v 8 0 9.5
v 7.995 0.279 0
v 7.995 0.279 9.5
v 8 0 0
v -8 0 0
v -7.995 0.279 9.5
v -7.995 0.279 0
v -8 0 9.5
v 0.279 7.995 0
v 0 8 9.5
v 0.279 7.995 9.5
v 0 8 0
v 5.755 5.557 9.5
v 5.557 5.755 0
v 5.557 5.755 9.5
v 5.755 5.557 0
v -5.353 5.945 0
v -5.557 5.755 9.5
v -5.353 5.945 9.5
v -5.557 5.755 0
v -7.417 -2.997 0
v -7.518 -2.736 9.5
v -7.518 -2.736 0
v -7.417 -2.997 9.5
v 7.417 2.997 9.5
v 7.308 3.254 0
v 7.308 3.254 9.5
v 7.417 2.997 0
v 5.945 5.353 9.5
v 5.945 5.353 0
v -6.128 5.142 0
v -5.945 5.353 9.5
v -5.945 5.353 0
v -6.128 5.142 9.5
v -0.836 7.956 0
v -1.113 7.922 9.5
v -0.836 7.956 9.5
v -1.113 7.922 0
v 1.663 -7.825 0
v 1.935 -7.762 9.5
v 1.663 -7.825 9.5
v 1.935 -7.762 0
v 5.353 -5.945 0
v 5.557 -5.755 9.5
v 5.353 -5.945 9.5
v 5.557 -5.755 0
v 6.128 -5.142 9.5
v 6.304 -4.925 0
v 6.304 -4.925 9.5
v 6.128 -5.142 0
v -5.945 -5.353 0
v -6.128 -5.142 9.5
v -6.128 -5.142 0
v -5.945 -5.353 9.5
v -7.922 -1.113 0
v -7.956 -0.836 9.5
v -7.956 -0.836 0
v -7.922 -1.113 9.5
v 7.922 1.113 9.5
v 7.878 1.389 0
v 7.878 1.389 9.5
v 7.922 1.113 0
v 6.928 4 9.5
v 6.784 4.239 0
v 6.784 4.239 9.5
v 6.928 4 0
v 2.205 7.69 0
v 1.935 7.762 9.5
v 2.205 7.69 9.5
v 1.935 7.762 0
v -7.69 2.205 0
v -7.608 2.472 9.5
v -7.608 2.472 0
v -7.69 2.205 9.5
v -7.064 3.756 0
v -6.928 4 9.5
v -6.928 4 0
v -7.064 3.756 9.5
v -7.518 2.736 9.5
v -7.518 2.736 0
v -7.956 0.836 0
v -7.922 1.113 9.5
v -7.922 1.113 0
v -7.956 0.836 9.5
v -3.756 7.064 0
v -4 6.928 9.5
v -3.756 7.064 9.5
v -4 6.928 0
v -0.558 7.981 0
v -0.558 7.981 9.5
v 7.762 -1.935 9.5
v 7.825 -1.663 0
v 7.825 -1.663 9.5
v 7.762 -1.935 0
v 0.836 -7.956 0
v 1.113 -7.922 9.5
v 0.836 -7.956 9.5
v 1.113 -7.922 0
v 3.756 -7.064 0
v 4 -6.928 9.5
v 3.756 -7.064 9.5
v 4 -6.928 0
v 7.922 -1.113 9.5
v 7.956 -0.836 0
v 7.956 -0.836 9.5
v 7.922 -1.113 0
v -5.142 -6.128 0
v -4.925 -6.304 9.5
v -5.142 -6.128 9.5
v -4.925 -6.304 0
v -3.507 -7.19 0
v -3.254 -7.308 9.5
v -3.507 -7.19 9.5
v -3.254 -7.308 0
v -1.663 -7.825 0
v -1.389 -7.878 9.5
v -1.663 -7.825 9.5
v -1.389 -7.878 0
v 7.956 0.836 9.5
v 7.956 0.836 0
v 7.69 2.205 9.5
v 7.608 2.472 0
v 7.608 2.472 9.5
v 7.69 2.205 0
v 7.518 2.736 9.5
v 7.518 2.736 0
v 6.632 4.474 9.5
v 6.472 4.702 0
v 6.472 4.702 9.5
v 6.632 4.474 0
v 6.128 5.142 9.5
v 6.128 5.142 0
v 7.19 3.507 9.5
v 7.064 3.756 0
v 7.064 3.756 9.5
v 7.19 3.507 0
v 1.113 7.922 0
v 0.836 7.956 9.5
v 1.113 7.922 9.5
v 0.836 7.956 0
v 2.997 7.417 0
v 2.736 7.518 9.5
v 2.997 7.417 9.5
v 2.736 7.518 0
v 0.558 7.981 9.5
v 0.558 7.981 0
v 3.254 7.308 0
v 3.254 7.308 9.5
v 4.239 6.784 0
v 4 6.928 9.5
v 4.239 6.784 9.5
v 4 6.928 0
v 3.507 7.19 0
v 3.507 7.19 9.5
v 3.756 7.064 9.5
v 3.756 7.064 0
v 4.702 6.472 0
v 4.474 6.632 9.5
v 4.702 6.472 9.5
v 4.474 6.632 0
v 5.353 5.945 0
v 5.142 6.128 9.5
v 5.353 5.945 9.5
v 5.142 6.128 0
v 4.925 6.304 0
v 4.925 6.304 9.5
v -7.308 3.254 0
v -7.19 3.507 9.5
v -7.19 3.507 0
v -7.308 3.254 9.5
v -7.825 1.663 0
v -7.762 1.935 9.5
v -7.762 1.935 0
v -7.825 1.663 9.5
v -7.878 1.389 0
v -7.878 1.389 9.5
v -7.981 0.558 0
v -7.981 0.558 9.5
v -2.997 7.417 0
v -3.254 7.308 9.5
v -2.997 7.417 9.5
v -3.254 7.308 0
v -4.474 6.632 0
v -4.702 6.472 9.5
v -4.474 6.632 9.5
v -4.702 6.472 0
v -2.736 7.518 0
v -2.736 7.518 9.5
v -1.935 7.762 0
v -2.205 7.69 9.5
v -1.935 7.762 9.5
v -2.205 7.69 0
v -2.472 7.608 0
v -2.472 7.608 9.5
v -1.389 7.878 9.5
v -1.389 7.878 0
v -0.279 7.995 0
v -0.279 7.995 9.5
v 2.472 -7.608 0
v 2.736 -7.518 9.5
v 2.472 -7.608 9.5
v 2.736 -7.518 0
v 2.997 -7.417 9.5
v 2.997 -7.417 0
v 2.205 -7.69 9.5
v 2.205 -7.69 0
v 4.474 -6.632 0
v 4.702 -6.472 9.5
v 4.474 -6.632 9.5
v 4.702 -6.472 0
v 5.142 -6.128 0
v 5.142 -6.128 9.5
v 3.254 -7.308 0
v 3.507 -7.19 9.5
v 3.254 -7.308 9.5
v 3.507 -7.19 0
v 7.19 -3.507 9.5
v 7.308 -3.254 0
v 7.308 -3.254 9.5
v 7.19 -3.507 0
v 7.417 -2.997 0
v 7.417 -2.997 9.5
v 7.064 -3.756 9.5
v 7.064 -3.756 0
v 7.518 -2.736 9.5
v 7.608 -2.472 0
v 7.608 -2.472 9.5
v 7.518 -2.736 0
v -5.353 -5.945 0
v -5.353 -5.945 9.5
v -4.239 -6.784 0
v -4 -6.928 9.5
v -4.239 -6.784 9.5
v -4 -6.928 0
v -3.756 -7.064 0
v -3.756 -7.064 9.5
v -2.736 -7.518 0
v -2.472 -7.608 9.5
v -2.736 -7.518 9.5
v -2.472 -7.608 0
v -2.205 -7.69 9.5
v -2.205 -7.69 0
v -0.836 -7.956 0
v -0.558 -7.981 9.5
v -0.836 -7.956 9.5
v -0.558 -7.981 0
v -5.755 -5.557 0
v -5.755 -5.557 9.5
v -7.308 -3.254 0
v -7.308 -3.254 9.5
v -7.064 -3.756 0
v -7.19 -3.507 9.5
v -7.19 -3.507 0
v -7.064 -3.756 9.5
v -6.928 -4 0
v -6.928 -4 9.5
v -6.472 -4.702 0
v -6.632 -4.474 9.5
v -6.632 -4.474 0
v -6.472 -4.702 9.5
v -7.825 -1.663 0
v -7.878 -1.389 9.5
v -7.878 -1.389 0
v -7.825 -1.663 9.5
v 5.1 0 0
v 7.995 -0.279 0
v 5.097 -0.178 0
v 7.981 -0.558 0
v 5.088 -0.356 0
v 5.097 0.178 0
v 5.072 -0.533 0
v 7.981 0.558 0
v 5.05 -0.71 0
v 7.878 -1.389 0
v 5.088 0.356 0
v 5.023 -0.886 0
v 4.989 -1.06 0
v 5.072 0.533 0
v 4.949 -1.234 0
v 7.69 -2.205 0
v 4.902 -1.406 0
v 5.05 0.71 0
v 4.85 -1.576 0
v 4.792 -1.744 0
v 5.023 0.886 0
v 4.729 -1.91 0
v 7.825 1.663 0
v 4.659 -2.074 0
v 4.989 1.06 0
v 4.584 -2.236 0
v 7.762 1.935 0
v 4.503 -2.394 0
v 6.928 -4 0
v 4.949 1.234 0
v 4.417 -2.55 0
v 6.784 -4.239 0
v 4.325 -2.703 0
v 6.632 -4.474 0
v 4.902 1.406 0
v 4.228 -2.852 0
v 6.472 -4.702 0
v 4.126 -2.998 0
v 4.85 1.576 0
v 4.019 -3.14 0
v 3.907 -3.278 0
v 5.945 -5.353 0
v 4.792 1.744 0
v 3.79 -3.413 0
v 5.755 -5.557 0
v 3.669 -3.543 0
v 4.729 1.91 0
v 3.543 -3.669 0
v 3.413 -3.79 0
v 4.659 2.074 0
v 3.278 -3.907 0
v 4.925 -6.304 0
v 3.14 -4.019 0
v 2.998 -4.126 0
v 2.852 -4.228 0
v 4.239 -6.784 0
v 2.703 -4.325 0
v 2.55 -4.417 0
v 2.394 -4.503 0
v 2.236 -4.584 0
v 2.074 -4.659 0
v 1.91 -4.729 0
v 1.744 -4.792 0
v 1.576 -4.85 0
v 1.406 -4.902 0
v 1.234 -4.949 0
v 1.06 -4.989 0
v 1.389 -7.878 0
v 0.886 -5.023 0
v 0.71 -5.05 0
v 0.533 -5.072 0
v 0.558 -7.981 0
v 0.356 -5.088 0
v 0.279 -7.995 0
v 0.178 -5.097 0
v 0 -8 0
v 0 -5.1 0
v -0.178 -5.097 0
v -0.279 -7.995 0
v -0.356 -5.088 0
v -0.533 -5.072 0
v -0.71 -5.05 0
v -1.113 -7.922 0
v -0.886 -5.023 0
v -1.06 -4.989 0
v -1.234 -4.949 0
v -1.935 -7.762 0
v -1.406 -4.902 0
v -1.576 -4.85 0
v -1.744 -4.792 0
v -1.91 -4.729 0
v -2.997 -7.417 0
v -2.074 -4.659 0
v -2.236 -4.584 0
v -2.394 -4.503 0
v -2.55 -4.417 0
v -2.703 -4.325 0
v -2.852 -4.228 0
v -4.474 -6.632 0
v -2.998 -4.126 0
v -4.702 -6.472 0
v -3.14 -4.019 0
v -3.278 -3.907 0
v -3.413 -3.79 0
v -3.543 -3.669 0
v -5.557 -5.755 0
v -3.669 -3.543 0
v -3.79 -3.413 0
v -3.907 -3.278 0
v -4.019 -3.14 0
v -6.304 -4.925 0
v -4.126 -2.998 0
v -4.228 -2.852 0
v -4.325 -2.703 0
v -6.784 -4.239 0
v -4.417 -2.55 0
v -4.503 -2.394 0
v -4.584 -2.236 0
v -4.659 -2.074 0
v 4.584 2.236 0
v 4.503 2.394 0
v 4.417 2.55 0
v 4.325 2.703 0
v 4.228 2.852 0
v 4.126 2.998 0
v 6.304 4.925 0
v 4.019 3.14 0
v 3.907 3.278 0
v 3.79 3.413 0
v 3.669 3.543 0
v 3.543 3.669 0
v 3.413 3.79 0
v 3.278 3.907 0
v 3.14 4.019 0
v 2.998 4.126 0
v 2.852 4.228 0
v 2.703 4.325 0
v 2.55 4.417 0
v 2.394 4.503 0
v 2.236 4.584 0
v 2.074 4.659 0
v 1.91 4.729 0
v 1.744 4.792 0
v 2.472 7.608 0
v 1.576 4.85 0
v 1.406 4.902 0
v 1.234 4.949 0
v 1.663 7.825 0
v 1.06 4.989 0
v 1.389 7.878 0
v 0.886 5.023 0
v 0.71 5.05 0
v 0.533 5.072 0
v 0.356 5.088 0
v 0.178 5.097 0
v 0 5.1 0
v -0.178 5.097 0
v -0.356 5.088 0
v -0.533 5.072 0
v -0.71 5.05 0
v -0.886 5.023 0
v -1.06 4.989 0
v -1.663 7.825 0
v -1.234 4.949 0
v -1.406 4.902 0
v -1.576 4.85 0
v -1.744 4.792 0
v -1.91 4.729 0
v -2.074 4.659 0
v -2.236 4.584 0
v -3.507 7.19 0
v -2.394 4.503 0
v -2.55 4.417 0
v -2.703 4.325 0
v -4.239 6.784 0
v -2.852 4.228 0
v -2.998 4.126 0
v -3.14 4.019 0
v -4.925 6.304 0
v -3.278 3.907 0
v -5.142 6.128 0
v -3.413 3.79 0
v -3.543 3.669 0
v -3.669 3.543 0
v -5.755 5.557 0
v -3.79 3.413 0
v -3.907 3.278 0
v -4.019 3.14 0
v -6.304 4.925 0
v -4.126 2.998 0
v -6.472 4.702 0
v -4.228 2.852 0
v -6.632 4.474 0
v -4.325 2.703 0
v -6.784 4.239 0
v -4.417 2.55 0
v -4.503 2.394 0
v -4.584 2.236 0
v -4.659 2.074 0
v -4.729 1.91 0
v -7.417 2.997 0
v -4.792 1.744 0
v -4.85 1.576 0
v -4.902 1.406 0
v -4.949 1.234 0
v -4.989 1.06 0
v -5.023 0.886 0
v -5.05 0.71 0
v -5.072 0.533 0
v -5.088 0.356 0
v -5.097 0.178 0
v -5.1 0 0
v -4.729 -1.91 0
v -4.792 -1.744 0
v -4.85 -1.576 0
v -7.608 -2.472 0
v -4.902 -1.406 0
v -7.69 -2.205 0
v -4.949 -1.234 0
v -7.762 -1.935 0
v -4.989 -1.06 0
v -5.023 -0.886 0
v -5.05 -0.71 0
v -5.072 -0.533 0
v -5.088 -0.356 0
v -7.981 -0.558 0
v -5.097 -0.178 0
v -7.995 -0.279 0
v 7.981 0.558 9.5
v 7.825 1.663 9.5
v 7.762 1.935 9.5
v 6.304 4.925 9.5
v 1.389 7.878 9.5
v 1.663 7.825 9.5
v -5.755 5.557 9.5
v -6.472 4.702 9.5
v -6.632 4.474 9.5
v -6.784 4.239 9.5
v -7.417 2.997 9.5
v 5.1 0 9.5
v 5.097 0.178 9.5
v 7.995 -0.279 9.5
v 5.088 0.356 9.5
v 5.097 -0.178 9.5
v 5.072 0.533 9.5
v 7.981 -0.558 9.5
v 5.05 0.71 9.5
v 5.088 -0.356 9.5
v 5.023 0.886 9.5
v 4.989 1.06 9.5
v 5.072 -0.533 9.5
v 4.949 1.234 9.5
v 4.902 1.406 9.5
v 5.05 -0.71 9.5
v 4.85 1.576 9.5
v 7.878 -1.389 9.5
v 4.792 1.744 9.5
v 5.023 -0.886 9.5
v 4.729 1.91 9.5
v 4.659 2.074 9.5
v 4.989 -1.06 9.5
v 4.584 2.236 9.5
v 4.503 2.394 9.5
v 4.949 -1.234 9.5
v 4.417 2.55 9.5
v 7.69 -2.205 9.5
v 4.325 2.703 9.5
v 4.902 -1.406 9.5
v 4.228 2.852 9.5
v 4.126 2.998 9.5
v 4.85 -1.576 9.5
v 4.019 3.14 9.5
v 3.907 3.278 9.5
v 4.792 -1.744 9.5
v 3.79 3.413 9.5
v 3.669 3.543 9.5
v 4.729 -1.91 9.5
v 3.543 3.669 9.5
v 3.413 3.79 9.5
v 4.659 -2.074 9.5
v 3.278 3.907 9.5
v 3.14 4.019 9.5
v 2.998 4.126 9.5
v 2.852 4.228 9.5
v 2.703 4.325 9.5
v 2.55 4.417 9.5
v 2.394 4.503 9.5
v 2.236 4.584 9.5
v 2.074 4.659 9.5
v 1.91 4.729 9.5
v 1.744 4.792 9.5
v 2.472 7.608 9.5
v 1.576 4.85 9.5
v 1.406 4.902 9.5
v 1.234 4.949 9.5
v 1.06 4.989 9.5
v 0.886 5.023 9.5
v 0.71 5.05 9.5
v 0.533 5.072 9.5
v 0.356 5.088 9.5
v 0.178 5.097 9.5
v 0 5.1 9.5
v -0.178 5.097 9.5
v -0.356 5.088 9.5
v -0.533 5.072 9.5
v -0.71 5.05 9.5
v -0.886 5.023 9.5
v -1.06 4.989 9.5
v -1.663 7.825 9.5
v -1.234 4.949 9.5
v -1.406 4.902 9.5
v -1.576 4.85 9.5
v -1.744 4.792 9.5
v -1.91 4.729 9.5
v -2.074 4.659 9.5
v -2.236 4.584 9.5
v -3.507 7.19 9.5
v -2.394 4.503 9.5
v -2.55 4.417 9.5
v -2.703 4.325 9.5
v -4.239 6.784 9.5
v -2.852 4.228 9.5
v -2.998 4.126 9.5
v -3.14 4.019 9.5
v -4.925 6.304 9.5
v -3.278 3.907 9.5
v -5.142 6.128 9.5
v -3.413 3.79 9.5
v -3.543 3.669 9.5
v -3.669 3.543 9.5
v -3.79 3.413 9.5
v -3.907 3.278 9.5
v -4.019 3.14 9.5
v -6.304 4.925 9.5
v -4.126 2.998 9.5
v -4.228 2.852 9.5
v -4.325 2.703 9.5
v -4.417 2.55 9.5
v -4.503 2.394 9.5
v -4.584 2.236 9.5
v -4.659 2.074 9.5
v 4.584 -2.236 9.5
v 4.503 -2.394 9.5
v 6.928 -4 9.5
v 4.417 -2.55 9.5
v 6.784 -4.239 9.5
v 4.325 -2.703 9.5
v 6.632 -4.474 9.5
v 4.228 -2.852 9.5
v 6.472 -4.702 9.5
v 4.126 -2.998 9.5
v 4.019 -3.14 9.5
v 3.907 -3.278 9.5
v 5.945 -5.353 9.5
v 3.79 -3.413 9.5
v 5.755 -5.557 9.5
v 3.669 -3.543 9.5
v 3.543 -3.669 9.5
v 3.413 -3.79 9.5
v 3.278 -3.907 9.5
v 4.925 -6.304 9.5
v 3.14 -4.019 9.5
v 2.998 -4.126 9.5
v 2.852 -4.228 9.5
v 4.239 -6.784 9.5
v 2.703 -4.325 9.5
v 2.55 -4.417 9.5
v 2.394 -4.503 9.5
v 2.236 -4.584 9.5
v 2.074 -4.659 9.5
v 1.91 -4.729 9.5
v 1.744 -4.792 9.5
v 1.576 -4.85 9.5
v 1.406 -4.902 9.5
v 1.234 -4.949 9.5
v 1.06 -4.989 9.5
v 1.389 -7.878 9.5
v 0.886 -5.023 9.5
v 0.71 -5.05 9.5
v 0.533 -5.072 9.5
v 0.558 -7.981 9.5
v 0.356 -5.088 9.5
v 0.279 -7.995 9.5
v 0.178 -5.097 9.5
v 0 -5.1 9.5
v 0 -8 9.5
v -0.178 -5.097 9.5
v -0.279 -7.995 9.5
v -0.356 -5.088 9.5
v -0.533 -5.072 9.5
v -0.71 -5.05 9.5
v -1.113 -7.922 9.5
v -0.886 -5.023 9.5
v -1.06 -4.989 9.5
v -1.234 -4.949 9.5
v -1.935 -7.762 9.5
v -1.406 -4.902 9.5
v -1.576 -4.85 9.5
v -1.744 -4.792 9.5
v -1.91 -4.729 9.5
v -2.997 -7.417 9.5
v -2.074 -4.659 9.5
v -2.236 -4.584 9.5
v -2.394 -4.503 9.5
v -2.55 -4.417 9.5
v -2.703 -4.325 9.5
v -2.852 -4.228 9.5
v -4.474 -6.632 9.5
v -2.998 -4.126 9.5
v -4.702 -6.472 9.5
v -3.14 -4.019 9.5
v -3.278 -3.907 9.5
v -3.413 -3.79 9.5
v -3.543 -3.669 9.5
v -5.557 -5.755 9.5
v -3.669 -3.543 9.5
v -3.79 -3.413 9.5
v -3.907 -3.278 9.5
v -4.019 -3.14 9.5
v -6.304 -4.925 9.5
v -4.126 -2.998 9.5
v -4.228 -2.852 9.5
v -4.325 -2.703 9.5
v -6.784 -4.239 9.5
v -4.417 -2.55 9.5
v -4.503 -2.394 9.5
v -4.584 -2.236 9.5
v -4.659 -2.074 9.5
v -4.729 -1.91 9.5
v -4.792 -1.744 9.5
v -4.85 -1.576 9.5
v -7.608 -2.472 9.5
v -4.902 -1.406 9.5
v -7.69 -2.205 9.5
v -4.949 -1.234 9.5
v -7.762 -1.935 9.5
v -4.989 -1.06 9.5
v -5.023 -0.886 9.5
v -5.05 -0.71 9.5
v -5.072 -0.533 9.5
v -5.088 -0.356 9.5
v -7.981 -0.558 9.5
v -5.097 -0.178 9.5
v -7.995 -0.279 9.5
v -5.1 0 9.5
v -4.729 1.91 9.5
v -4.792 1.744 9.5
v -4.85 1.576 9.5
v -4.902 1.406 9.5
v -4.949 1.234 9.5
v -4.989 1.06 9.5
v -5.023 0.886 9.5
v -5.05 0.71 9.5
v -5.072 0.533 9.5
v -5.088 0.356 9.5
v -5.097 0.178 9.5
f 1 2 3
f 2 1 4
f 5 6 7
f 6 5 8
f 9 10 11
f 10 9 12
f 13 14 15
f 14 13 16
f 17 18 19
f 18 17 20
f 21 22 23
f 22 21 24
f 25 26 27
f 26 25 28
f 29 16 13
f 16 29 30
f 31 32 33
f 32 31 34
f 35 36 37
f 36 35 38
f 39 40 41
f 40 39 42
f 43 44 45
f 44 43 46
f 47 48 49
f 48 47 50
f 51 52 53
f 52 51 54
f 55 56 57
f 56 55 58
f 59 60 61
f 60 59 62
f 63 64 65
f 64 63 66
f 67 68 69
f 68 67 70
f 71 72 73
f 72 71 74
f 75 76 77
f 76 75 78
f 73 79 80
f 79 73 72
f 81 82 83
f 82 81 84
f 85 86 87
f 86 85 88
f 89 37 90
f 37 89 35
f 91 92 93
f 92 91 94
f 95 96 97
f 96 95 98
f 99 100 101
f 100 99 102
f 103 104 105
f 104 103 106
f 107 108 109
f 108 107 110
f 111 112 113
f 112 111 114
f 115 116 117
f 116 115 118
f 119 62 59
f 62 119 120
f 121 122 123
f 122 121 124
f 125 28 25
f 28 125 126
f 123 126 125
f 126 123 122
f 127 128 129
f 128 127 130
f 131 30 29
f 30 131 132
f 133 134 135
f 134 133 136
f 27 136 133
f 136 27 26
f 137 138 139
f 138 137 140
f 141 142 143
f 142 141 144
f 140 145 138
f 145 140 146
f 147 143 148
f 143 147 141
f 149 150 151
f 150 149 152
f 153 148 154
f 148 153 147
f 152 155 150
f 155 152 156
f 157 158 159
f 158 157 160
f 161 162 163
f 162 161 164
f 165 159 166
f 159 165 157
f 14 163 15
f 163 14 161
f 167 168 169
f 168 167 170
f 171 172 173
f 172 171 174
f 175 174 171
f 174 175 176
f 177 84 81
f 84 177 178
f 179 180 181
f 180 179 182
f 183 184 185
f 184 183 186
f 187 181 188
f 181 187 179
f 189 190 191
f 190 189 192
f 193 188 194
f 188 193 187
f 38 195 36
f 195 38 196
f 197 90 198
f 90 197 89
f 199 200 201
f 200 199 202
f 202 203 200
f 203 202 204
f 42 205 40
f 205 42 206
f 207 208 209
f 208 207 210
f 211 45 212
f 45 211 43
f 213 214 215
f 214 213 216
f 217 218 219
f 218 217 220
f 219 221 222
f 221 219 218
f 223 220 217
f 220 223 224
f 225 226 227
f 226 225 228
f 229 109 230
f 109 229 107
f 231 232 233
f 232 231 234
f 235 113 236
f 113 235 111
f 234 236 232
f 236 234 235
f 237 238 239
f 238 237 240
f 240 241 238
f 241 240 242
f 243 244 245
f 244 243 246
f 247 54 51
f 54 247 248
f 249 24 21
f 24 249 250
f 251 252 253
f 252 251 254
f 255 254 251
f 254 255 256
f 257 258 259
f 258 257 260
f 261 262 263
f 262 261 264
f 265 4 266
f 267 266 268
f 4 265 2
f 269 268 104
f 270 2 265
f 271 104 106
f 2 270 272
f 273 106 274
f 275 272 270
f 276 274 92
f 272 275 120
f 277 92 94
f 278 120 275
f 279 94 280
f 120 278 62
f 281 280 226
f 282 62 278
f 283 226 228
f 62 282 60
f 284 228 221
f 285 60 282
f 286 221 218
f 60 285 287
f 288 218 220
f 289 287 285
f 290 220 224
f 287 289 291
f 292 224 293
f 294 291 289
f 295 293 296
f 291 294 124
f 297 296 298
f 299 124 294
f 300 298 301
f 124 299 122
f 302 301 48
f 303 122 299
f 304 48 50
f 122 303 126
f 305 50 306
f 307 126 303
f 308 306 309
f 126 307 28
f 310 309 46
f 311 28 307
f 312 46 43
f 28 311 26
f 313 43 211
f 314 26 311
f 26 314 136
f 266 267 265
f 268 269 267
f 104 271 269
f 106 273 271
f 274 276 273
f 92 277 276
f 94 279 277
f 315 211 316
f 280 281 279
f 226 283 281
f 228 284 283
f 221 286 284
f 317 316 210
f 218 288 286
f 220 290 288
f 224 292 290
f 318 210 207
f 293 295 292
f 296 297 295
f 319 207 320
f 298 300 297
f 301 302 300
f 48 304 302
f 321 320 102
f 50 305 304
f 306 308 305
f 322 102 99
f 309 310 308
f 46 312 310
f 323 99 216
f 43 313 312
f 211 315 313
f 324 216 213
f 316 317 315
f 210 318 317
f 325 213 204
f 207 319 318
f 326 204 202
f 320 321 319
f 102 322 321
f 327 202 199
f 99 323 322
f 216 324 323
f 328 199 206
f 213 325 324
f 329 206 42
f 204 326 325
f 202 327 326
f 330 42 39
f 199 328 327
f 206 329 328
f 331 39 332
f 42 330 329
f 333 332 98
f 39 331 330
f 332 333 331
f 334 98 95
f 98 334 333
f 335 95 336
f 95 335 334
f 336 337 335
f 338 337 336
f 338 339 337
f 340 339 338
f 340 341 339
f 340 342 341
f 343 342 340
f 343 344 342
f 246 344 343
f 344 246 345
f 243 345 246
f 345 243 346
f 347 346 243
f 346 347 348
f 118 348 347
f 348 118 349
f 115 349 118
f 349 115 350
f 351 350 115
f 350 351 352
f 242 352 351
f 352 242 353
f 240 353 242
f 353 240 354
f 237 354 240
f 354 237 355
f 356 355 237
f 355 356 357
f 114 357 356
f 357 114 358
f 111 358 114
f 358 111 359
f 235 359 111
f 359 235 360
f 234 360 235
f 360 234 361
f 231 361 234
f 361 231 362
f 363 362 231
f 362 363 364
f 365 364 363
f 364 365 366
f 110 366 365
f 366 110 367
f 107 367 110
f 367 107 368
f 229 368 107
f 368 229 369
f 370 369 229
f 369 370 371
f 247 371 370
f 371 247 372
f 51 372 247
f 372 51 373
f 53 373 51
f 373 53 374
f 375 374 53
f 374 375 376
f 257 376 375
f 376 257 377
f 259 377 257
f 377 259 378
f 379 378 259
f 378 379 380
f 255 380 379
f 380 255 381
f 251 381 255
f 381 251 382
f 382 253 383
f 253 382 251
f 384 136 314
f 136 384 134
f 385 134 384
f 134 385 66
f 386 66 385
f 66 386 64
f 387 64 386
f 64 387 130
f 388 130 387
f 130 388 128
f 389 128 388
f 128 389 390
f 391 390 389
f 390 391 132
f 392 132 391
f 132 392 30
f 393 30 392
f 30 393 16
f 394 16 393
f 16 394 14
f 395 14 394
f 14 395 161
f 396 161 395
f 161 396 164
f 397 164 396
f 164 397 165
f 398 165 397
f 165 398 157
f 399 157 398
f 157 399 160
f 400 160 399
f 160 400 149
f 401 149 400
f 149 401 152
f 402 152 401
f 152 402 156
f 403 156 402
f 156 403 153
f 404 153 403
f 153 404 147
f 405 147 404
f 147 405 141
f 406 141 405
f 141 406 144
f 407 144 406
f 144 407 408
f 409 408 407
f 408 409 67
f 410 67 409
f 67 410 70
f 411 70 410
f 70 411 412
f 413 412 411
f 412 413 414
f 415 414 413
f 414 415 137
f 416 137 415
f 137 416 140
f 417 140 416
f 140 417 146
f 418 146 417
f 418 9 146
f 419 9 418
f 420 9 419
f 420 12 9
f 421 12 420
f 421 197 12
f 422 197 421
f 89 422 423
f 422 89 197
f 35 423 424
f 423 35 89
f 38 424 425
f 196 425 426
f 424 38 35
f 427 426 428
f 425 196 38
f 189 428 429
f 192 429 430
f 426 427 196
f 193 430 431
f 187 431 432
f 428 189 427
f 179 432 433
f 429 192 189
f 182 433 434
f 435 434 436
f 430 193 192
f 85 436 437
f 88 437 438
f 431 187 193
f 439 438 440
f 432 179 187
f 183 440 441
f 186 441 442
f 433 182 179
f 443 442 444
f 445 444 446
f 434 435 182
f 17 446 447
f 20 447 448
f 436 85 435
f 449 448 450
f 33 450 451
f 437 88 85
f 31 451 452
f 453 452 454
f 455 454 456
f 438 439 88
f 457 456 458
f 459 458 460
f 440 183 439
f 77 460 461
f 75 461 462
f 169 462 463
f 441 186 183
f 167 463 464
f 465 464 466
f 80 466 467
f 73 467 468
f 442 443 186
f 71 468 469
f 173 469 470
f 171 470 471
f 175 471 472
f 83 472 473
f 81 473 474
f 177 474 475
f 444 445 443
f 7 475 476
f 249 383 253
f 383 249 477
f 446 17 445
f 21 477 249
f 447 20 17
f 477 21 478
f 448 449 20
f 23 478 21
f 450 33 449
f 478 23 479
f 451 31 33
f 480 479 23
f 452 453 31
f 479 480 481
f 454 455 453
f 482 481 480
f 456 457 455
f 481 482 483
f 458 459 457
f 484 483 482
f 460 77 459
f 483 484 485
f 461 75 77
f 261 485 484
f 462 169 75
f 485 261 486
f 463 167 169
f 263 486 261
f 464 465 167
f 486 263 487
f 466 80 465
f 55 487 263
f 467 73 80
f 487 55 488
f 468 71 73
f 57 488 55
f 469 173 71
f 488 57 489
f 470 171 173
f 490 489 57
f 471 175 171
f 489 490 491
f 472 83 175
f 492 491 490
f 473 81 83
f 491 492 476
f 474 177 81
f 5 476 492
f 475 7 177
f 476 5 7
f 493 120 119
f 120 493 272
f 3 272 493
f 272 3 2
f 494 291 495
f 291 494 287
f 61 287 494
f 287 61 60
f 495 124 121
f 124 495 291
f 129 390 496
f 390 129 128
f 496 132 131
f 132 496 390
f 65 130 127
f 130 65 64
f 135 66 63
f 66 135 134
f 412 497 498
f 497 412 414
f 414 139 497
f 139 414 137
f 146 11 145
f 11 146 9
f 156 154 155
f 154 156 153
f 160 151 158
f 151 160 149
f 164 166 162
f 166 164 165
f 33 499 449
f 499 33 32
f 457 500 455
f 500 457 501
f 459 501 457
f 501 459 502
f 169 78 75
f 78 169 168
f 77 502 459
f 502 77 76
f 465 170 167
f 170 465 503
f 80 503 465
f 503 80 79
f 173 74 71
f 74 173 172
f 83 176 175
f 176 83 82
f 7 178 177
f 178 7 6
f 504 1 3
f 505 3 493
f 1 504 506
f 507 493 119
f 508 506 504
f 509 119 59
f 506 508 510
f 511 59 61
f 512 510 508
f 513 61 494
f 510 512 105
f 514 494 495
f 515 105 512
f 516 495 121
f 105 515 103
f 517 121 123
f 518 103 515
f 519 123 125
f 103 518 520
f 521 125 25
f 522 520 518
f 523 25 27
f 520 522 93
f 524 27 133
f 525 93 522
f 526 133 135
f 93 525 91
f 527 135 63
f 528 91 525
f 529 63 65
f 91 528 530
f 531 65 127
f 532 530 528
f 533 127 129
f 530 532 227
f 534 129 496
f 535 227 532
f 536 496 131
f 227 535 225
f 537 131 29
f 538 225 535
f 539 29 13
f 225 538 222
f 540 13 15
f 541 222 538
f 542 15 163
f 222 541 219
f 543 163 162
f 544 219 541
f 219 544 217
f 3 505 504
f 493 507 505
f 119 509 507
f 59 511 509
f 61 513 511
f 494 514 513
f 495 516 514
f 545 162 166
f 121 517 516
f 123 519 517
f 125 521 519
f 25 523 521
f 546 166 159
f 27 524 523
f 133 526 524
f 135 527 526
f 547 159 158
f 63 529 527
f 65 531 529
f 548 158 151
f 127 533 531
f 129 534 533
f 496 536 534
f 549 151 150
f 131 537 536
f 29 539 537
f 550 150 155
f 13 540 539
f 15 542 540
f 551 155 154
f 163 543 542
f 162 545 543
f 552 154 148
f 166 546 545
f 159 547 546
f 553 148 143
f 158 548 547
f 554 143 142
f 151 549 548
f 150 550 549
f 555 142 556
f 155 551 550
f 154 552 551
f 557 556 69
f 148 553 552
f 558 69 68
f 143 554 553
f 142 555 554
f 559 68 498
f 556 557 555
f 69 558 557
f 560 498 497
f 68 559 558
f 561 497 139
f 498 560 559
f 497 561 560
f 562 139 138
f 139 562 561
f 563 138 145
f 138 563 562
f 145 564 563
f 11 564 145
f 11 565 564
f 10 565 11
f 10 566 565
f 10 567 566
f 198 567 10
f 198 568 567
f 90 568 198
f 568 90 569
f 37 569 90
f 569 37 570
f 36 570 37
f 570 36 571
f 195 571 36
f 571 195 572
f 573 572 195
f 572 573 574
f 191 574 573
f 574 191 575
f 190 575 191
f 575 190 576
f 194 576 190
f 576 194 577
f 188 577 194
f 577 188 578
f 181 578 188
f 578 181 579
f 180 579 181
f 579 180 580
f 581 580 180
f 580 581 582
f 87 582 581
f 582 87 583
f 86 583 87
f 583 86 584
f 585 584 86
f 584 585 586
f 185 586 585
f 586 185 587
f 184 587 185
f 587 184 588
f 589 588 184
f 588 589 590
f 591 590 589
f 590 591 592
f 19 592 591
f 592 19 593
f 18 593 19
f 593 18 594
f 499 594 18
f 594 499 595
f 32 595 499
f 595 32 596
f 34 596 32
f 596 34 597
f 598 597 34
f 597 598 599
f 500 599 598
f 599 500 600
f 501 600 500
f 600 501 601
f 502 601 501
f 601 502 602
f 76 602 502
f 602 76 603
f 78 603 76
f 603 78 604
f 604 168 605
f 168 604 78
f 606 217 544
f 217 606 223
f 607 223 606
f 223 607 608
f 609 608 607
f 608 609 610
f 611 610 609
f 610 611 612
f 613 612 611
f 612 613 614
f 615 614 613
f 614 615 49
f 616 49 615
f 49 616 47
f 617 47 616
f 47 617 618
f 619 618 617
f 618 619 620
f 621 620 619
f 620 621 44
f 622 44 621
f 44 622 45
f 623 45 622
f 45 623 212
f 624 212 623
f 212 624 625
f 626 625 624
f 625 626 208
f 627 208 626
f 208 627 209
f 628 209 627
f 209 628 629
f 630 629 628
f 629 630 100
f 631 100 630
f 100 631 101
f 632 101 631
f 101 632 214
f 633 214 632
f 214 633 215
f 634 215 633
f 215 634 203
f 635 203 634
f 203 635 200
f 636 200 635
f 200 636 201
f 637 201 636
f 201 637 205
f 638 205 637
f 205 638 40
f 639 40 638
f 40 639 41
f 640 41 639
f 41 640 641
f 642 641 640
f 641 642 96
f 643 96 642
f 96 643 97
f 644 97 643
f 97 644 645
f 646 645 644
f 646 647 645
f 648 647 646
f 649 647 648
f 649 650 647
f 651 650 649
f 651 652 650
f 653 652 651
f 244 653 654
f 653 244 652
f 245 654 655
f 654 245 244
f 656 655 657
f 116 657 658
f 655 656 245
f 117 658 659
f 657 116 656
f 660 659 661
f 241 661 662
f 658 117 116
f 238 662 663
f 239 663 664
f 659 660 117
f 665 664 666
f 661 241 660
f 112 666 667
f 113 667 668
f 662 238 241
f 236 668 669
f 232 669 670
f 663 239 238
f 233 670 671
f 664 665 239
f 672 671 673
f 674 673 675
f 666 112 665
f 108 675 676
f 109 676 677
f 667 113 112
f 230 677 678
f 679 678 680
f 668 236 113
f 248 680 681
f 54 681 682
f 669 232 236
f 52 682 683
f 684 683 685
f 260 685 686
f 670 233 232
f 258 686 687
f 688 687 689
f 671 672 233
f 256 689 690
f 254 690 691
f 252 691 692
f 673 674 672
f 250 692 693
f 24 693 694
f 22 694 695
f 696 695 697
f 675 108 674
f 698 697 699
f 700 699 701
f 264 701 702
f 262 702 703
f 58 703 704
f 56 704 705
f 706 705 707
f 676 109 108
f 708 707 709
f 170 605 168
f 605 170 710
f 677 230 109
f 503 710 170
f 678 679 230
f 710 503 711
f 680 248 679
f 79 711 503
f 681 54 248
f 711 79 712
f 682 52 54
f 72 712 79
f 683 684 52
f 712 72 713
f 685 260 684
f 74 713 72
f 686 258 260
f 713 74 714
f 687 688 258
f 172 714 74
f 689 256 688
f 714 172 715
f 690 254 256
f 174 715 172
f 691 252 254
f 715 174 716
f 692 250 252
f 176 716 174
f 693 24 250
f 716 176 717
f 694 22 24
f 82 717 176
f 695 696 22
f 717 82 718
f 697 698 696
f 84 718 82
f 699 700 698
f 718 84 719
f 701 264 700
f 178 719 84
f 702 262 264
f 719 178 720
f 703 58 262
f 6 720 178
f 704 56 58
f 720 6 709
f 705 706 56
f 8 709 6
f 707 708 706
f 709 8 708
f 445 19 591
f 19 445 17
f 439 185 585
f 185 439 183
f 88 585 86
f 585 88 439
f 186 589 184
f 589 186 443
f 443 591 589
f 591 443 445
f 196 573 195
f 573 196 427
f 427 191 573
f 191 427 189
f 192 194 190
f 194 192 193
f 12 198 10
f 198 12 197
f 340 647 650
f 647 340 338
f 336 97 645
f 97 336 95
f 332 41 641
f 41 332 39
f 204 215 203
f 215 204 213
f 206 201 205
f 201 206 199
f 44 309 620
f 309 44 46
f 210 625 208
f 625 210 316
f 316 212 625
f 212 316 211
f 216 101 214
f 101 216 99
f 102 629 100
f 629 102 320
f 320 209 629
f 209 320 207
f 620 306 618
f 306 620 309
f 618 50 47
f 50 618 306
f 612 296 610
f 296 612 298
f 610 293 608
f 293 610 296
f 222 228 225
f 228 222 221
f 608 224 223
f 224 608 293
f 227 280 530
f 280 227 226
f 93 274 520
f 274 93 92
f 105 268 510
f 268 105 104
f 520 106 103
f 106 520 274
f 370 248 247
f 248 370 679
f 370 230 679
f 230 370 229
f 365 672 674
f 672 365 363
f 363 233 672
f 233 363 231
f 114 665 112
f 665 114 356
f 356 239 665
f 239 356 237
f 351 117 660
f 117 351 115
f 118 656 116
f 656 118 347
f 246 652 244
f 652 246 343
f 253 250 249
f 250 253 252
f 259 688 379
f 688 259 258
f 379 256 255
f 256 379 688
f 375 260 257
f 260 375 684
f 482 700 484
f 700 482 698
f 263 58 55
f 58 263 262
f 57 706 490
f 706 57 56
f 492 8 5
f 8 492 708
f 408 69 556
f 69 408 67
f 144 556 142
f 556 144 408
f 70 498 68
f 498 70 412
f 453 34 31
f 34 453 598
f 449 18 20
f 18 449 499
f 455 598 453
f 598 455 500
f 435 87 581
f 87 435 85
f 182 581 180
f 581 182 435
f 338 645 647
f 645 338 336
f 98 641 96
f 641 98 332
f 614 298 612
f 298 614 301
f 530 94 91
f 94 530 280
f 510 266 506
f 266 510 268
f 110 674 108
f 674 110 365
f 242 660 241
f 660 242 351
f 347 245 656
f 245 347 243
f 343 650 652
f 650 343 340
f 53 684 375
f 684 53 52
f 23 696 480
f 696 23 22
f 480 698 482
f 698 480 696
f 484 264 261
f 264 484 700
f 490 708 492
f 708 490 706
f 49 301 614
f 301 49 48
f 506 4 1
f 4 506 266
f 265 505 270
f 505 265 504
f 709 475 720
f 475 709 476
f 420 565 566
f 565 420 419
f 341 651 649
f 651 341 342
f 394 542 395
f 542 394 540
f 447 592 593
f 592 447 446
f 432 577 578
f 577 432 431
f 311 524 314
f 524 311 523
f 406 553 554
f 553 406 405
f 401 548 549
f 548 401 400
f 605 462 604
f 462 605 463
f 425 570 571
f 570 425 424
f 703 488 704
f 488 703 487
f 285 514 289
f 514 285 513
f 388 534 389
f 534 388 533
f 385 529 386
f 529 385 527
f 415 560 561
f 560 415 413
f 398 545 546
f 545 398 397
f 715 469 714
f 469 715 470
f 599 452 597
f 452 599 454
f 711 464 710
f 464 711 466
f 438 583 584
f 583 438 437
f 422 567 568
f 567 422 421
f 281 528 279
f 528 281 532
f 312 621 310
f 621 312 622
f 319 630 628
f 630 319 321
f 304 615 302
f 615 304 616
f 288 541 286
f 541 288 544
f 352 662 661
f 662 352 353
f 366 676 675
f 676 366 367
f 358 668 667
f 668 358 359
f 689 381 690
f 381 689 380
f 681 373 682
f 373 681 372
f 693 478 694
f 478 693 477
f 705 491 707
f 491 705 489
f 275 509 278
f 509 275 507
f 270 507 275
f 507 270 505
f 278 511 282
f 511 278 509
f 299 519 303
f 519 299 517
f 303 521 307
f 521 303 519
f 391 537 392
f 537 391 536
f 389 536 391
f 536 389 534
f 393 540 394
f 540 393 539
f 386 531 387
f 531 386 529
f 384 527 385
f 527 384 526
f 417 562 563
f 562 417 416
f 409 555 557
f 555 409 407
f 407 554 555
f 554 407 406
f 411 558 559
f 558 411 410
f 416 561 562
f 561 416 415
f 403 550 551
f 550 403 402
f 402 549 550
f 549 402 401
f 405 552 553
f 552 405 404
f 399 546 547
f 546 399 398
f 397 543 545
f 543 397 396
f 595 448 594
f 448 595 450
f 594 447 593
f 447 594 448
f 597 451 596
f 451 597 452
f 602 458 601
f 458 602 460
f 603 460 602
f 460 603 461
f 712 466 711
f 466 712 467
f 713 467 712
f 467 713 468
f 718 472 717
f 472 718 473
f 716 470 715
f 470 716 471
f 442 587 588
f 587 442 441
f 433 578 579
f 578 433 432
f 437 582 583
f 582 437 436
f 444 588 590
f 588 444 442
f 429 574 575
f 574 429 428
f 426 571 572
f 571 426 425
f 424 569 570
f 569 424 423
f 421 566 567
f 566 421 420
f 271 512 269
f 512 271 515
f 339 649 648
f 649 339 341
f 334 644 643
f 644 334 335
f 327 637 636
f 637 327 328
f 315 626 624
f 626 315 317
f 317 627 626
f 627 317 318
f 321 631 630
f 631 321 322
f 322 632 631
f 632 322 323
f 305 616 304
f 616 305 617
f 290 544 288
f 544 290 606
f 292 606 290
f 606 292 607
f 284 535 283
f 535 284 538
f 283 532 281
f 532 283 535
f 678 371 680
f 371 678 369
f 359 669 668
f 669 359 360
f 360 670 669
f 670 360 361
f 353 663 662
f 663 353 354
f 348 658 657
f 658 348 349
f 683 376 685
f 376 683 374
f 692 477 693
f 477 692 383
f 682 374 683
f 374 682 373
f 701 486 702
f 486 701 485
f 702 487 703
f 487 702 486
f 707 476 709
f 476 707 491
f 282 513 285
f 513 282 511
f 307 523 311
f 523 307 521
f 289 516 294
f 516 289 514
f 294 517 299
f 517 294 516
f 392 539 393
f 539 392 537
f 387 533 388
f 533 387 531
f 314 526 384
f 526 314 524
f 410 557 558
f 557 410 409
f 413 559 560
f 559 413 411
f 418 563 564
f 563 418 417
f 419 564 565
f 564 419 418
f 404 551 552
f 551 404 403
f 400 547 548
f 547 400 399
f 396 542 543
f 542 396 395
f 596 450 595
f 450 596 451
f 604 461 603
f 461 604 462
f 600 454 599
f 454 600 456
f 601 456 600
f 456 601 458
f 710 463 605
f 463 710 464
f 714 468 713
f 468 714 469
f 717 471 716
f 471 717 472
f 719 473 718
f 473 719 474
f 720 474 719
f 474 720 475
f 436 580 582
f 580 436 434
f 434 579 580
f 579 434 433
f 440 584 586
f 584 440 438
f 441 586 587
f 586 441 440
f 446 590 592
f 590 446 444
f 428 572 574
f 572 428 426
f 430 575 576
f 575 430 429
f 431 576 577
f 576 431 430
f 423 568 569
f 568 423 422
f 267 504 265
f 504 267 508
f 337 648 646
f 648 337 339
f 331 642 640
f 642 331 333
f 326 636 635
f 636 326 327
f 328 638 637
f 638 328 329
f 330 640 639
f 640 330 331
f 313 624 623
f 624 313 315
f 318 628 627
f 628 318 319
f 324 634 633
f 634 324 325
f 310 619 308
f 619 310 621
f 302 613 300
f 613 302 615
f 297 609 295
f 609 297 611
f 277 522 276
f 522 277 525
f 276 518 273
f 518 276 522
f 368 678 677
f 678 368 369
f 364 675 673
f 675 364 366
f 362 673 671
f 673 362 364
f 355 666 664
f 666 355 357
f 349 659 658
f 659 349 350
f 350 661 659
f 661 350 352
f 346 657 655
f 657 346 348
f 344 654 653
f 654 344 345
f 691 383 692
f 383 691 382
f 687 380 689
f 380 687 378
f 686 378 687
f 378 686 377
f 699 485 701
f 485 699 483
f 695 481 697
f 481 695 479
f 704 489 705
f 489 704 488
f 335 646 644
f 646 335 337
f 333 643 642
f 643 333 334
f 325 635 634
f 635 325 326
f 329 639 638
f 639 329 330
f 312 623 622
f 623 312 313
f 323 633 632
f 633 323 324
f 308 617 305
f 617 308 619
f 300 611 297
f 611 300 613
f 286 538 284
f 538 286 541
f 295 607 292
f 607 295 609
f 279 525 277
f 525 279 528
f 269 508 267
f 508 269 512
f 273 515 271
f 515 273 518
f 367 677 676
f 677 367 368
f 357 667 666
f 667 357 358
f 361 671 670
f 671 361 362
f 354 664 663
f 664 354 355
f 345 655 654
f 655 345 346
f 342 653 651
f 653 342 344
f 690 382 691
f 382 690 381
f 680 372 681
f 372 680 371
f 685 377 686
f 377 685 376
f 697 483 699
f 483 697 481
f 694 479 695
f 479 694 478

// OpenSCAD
$fa = 2;
$fs = 0.1;
difference() {
    cylinder(9.5, 8, 8);
    translate([0, 0, -1]) {
        cylinder(12, 5.1, 5.1);
    }
}
